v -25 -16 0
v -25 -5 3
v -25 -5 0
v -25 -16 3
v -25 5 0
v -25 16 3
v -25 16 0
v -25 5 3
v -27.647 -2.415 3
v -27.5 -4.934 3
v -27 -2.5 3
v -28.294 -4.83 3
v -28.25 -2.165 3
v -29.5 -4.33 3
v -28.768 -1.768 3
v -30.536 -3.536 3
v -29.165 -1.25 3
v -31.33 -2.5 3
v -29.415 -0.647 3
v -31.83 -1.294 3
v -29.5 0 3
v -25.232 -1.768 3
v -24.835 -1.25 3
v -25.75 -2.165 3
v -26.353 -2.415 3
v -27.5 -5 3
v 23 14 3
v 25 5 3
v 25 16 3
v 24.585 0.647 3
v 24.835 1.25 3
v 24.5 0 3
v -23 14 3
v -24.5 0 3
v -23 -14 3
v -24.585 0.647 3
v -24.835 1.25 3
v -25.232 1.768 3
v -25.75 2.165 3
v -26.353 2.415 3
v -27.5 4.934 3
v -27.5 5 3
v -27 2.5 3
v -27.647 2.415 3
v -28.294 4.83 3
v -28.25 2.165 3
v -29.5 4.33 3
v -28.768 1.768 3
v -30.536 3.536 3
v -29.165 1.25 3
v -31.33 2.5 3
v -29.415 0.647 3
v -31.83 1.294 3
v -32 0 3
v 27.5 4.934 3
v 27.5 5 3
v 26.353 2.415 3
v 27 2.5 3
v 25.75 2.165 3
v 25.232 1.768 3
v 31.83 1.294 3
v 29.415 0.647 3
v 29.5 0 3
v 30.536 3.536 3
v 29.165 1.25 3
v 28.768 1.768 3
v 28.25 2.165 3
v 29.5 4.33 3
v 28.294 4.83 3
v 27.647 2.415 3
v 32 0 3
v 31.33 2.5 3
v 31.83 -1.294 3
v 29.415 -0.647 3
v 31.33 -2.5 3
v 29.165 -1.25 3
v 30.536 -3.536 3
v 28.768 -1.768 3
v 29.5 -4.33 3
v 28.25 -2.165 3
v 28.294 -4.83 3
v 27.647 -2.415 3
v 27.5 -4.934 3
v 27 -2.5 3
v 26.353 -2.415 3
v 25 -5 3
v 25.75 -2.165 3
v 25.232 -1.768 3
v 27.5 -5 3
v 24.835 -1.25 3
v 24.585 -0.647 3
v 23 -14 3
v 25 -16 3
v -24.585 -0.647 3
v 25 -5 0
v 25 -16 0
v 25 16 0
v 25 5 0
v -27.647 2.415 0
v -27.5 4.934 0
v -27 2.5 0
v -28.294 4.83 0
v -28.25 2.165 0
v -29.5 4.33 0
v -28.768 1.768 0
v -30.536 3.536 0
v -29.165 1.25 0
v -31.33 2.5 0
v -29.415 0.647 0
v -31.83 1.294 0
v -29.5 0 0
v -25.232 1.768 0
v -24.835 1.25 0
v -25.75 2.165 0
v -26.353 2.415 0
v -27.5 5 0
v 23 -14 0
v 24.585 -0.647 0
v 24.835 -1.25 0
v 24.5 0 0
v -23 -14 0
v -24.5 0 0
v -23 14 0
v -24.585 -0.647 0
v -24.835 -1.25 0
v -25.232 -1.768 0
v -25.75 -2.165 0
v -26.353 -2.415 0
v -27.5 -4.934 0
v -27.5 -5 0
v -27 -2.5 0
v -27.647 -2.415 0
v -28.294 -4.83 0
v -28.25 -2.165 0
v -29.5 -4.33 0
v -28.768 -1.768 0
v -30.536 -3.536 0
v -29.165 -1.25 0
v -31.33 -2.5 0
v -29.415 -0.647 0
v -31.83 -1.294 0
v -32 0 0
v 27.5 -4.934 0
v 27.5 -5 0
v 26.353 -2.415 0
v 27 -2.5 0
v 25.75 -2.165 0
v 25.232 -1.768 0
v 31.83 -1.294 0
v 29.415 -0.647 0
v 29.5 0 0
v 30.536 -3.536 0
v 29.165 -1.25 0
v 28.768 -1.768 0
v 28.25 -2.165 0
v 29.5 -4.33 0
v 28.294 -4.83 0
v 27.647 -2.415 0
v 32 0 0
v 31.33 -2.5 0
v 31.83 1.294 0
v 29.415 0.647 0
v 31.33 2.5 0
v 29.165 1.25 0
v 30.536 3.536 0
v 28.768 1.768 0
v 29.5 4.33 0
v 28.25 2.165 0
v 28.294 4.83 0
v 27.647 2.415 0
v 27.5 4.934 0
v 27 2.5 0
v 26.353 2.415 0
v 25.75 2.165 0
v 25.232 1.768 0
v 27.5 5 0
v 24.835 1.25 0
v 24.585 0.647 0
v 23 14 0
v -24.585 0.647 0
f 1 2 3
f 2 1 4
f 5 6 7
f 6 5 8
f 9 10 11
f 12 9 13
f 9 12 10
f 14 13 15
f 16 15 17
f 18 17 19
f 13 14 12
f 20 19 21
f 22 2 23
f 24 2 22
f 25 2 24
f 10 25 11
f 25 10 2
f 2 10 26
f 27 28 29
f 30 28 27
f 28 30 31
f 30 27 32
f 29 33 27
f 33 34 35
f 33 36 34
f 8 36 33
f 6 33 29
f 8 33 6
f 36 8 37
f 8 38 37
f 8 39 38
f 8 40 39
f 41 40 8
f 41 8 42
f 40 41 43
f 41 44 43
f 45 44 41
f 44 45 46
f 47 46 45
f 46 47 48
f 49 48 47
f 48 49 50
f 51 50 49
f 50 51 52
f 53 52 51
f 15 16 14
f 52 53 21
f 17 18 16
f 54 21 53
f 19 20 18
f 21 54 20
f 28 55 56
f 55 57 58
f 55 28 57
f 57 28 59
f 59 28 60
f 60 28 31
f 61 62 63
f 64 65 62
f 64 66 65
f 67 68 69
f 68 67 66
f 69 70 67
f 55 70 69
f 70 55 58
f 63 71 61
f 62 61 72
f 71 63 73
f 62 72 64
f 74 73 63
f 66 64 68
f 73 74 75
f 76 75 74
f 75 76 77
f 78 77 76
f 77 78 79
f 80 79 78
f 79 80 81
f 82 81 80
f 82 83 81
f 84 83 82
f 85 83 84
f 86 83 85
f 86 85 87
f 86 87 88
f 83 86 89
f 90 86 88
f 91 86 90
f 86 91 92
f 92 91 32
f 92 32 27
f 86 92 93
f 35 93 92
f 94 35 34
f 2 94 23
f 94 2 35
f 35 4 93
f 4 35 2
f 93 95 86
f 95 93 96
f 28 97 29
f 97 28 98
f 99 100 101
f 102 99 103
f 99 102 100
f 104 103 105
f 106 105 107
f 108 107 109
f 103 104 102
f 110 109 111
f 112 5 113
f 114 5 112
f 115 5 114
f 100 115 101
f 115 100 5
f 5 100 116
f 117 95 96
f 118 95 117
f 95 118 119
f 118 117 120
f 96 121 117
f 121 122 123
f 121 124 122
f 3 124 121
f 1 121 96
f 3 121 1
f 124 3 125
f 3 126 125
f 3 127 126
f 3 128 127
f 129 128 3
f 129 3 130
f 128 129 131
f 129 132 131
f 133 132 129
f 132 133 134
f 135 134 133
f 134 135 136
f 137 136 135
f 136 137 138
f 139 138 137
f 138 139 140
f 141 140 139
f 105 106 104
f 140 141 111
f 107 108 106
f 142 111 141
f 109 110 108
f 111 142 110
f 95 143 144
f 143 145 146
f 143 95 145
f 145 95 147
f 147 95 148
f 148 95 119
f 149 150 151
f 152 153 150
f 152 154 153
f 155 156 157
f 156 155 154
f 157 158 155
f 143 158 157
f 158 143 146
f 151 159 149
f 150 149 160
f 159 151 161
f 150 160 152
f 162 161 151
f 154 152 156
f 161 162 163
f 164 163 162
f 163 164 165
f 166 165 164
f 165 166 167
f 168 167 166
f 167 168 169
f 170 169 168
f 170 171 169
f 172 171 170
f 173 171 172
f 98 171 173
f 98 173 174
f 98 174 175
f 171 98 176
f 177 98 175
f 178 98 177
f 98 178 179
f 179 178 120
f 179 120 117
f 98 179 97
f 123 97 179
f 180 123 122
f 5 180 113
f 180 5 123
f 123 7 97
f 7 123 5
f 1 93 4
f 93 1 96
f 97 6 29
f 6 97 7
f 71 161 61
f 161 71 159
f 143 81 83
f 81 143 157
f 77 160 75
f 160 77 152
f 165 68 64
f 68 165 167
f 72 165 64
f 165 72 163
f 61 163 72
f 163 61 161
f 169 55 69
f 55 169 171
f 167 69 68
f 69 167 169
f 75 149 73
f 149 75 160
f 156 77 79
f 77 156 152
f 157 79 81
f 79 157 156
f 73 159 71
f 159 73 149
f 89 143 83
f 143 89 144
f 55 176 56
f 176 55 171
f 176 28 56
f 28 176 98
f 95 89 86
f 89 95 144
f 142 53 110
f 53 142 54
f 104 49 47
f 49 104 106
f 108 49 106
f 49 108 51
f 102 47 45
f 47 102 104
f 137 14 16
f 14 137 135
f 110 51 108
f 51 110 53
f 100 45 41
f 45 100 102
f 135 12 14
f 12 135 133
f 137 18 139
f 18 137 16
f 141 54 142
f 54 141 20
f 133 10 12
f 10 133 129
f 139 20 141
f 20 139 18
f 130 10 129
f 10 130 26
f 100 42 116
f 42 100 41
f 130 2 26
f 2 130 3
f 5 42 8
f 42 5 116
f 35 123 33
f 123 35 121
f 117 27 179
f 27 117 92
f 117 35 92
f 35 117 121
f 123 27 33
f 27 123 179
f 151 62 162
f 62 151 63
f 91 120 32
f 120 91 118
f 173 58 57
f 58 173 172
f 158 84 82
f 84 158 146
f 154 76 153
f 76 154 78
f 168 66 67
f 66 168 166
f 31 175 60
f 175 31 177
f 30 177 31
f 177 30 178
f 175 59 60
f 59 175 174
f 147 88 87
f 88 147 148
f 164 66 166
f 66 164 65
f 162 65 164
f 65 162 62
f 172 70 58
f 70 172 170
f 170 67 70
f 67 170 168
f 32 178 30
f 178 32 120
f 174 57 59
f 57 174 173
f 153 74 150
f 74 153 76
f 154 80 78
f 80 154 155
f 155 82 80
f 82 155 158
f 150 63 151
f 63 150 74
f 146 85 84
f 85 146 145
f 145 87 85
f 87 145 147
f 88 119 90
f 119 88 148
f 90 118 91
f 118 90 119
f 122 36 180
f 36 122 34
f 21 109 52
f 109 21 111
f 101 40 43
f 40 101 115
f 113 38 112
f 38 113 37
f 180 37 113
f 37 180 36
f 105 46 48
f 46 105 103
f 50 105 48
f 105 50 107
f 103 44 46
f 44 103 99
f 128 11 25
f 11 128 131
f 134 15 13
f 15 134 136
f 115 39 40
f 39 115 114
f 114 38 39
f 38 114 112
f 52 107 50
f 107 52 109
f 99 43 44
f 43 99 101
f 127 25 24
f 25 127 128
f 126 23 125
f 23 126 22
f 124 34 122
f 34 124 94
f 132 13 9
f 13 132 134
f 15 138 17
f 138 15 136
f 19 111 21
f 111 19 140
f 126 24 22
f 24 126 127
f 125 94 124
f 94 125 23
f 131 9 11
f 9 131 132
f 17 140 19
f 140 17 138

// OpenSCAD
//###############################################################################
//#                                                                             #
//###############################################################################
//#    Copyright 2020 Dirk Heisswolf                                            #
//#    This file is part of the DIY Laser Bed project.                          #
//#                                                                             #
//#    This project is free software: you can redistribute it and/or modify     #
//#    it under the terms of the GNU General Public License as published by     #
//#    the Free Software Foundation, either version 3 of the License, or        #
//#    (at your option) any later version.                                      #
//#                                                                             #
//#    This project is distributed in the hope that it will be useful,          #
//#    but WITHOUT ANY WARRANTY; without even the implied warranty of           #
//#    MERCHANTABILITY or FITNESS FOR A PARTICULAR PURPOSE.  See the            #
//#    GNU General Public License for more details.                             #
//#                                                                             #
//#    You should have received a copy of the GNU General Public License        #
//#    along with this project.  If not, see <http://www.gnu.org/licenses/>.    #
//#                                                                             #
//###############################################################################
//# Description:                                                                #
//#   A bracket to secure a temperature display.                                #
//#                                                                             #
//###############################################################################
//# Version History:                                                            #
//#   February 27, 2020                                                         #
//#      - Initial release                                                      #
//#                                                                             #
//###############################################################################
//Parameters
$d_cable     =  8;                  //diameter of the cable
$fn          = 24;

module flowind_bracket() {
    //Body
    difference() {
        union() {
          translate([0,0,1.5])      cube([50,32,3],true); 
           
          translate([27,0,0])  cylinder(3,d=10); 
          translate([25,0,1.5])  cube([5,10,3],true); 

          translate([-27,0,0]) cylinder(3,d=10);             
          translate([-25,0,1.5]) cube([5,10,3],true); 
        }
        union() {
          translate([0,0,0])       cube([46,28,10],true); 

          translate([27,0,-1])  cylinder(8,d=5); 
 
          translate([-27,0,-1]) cylinder(8,d=5);             
        }
    }
}

//if ($preview) {

   flowind_bracket();
//}
